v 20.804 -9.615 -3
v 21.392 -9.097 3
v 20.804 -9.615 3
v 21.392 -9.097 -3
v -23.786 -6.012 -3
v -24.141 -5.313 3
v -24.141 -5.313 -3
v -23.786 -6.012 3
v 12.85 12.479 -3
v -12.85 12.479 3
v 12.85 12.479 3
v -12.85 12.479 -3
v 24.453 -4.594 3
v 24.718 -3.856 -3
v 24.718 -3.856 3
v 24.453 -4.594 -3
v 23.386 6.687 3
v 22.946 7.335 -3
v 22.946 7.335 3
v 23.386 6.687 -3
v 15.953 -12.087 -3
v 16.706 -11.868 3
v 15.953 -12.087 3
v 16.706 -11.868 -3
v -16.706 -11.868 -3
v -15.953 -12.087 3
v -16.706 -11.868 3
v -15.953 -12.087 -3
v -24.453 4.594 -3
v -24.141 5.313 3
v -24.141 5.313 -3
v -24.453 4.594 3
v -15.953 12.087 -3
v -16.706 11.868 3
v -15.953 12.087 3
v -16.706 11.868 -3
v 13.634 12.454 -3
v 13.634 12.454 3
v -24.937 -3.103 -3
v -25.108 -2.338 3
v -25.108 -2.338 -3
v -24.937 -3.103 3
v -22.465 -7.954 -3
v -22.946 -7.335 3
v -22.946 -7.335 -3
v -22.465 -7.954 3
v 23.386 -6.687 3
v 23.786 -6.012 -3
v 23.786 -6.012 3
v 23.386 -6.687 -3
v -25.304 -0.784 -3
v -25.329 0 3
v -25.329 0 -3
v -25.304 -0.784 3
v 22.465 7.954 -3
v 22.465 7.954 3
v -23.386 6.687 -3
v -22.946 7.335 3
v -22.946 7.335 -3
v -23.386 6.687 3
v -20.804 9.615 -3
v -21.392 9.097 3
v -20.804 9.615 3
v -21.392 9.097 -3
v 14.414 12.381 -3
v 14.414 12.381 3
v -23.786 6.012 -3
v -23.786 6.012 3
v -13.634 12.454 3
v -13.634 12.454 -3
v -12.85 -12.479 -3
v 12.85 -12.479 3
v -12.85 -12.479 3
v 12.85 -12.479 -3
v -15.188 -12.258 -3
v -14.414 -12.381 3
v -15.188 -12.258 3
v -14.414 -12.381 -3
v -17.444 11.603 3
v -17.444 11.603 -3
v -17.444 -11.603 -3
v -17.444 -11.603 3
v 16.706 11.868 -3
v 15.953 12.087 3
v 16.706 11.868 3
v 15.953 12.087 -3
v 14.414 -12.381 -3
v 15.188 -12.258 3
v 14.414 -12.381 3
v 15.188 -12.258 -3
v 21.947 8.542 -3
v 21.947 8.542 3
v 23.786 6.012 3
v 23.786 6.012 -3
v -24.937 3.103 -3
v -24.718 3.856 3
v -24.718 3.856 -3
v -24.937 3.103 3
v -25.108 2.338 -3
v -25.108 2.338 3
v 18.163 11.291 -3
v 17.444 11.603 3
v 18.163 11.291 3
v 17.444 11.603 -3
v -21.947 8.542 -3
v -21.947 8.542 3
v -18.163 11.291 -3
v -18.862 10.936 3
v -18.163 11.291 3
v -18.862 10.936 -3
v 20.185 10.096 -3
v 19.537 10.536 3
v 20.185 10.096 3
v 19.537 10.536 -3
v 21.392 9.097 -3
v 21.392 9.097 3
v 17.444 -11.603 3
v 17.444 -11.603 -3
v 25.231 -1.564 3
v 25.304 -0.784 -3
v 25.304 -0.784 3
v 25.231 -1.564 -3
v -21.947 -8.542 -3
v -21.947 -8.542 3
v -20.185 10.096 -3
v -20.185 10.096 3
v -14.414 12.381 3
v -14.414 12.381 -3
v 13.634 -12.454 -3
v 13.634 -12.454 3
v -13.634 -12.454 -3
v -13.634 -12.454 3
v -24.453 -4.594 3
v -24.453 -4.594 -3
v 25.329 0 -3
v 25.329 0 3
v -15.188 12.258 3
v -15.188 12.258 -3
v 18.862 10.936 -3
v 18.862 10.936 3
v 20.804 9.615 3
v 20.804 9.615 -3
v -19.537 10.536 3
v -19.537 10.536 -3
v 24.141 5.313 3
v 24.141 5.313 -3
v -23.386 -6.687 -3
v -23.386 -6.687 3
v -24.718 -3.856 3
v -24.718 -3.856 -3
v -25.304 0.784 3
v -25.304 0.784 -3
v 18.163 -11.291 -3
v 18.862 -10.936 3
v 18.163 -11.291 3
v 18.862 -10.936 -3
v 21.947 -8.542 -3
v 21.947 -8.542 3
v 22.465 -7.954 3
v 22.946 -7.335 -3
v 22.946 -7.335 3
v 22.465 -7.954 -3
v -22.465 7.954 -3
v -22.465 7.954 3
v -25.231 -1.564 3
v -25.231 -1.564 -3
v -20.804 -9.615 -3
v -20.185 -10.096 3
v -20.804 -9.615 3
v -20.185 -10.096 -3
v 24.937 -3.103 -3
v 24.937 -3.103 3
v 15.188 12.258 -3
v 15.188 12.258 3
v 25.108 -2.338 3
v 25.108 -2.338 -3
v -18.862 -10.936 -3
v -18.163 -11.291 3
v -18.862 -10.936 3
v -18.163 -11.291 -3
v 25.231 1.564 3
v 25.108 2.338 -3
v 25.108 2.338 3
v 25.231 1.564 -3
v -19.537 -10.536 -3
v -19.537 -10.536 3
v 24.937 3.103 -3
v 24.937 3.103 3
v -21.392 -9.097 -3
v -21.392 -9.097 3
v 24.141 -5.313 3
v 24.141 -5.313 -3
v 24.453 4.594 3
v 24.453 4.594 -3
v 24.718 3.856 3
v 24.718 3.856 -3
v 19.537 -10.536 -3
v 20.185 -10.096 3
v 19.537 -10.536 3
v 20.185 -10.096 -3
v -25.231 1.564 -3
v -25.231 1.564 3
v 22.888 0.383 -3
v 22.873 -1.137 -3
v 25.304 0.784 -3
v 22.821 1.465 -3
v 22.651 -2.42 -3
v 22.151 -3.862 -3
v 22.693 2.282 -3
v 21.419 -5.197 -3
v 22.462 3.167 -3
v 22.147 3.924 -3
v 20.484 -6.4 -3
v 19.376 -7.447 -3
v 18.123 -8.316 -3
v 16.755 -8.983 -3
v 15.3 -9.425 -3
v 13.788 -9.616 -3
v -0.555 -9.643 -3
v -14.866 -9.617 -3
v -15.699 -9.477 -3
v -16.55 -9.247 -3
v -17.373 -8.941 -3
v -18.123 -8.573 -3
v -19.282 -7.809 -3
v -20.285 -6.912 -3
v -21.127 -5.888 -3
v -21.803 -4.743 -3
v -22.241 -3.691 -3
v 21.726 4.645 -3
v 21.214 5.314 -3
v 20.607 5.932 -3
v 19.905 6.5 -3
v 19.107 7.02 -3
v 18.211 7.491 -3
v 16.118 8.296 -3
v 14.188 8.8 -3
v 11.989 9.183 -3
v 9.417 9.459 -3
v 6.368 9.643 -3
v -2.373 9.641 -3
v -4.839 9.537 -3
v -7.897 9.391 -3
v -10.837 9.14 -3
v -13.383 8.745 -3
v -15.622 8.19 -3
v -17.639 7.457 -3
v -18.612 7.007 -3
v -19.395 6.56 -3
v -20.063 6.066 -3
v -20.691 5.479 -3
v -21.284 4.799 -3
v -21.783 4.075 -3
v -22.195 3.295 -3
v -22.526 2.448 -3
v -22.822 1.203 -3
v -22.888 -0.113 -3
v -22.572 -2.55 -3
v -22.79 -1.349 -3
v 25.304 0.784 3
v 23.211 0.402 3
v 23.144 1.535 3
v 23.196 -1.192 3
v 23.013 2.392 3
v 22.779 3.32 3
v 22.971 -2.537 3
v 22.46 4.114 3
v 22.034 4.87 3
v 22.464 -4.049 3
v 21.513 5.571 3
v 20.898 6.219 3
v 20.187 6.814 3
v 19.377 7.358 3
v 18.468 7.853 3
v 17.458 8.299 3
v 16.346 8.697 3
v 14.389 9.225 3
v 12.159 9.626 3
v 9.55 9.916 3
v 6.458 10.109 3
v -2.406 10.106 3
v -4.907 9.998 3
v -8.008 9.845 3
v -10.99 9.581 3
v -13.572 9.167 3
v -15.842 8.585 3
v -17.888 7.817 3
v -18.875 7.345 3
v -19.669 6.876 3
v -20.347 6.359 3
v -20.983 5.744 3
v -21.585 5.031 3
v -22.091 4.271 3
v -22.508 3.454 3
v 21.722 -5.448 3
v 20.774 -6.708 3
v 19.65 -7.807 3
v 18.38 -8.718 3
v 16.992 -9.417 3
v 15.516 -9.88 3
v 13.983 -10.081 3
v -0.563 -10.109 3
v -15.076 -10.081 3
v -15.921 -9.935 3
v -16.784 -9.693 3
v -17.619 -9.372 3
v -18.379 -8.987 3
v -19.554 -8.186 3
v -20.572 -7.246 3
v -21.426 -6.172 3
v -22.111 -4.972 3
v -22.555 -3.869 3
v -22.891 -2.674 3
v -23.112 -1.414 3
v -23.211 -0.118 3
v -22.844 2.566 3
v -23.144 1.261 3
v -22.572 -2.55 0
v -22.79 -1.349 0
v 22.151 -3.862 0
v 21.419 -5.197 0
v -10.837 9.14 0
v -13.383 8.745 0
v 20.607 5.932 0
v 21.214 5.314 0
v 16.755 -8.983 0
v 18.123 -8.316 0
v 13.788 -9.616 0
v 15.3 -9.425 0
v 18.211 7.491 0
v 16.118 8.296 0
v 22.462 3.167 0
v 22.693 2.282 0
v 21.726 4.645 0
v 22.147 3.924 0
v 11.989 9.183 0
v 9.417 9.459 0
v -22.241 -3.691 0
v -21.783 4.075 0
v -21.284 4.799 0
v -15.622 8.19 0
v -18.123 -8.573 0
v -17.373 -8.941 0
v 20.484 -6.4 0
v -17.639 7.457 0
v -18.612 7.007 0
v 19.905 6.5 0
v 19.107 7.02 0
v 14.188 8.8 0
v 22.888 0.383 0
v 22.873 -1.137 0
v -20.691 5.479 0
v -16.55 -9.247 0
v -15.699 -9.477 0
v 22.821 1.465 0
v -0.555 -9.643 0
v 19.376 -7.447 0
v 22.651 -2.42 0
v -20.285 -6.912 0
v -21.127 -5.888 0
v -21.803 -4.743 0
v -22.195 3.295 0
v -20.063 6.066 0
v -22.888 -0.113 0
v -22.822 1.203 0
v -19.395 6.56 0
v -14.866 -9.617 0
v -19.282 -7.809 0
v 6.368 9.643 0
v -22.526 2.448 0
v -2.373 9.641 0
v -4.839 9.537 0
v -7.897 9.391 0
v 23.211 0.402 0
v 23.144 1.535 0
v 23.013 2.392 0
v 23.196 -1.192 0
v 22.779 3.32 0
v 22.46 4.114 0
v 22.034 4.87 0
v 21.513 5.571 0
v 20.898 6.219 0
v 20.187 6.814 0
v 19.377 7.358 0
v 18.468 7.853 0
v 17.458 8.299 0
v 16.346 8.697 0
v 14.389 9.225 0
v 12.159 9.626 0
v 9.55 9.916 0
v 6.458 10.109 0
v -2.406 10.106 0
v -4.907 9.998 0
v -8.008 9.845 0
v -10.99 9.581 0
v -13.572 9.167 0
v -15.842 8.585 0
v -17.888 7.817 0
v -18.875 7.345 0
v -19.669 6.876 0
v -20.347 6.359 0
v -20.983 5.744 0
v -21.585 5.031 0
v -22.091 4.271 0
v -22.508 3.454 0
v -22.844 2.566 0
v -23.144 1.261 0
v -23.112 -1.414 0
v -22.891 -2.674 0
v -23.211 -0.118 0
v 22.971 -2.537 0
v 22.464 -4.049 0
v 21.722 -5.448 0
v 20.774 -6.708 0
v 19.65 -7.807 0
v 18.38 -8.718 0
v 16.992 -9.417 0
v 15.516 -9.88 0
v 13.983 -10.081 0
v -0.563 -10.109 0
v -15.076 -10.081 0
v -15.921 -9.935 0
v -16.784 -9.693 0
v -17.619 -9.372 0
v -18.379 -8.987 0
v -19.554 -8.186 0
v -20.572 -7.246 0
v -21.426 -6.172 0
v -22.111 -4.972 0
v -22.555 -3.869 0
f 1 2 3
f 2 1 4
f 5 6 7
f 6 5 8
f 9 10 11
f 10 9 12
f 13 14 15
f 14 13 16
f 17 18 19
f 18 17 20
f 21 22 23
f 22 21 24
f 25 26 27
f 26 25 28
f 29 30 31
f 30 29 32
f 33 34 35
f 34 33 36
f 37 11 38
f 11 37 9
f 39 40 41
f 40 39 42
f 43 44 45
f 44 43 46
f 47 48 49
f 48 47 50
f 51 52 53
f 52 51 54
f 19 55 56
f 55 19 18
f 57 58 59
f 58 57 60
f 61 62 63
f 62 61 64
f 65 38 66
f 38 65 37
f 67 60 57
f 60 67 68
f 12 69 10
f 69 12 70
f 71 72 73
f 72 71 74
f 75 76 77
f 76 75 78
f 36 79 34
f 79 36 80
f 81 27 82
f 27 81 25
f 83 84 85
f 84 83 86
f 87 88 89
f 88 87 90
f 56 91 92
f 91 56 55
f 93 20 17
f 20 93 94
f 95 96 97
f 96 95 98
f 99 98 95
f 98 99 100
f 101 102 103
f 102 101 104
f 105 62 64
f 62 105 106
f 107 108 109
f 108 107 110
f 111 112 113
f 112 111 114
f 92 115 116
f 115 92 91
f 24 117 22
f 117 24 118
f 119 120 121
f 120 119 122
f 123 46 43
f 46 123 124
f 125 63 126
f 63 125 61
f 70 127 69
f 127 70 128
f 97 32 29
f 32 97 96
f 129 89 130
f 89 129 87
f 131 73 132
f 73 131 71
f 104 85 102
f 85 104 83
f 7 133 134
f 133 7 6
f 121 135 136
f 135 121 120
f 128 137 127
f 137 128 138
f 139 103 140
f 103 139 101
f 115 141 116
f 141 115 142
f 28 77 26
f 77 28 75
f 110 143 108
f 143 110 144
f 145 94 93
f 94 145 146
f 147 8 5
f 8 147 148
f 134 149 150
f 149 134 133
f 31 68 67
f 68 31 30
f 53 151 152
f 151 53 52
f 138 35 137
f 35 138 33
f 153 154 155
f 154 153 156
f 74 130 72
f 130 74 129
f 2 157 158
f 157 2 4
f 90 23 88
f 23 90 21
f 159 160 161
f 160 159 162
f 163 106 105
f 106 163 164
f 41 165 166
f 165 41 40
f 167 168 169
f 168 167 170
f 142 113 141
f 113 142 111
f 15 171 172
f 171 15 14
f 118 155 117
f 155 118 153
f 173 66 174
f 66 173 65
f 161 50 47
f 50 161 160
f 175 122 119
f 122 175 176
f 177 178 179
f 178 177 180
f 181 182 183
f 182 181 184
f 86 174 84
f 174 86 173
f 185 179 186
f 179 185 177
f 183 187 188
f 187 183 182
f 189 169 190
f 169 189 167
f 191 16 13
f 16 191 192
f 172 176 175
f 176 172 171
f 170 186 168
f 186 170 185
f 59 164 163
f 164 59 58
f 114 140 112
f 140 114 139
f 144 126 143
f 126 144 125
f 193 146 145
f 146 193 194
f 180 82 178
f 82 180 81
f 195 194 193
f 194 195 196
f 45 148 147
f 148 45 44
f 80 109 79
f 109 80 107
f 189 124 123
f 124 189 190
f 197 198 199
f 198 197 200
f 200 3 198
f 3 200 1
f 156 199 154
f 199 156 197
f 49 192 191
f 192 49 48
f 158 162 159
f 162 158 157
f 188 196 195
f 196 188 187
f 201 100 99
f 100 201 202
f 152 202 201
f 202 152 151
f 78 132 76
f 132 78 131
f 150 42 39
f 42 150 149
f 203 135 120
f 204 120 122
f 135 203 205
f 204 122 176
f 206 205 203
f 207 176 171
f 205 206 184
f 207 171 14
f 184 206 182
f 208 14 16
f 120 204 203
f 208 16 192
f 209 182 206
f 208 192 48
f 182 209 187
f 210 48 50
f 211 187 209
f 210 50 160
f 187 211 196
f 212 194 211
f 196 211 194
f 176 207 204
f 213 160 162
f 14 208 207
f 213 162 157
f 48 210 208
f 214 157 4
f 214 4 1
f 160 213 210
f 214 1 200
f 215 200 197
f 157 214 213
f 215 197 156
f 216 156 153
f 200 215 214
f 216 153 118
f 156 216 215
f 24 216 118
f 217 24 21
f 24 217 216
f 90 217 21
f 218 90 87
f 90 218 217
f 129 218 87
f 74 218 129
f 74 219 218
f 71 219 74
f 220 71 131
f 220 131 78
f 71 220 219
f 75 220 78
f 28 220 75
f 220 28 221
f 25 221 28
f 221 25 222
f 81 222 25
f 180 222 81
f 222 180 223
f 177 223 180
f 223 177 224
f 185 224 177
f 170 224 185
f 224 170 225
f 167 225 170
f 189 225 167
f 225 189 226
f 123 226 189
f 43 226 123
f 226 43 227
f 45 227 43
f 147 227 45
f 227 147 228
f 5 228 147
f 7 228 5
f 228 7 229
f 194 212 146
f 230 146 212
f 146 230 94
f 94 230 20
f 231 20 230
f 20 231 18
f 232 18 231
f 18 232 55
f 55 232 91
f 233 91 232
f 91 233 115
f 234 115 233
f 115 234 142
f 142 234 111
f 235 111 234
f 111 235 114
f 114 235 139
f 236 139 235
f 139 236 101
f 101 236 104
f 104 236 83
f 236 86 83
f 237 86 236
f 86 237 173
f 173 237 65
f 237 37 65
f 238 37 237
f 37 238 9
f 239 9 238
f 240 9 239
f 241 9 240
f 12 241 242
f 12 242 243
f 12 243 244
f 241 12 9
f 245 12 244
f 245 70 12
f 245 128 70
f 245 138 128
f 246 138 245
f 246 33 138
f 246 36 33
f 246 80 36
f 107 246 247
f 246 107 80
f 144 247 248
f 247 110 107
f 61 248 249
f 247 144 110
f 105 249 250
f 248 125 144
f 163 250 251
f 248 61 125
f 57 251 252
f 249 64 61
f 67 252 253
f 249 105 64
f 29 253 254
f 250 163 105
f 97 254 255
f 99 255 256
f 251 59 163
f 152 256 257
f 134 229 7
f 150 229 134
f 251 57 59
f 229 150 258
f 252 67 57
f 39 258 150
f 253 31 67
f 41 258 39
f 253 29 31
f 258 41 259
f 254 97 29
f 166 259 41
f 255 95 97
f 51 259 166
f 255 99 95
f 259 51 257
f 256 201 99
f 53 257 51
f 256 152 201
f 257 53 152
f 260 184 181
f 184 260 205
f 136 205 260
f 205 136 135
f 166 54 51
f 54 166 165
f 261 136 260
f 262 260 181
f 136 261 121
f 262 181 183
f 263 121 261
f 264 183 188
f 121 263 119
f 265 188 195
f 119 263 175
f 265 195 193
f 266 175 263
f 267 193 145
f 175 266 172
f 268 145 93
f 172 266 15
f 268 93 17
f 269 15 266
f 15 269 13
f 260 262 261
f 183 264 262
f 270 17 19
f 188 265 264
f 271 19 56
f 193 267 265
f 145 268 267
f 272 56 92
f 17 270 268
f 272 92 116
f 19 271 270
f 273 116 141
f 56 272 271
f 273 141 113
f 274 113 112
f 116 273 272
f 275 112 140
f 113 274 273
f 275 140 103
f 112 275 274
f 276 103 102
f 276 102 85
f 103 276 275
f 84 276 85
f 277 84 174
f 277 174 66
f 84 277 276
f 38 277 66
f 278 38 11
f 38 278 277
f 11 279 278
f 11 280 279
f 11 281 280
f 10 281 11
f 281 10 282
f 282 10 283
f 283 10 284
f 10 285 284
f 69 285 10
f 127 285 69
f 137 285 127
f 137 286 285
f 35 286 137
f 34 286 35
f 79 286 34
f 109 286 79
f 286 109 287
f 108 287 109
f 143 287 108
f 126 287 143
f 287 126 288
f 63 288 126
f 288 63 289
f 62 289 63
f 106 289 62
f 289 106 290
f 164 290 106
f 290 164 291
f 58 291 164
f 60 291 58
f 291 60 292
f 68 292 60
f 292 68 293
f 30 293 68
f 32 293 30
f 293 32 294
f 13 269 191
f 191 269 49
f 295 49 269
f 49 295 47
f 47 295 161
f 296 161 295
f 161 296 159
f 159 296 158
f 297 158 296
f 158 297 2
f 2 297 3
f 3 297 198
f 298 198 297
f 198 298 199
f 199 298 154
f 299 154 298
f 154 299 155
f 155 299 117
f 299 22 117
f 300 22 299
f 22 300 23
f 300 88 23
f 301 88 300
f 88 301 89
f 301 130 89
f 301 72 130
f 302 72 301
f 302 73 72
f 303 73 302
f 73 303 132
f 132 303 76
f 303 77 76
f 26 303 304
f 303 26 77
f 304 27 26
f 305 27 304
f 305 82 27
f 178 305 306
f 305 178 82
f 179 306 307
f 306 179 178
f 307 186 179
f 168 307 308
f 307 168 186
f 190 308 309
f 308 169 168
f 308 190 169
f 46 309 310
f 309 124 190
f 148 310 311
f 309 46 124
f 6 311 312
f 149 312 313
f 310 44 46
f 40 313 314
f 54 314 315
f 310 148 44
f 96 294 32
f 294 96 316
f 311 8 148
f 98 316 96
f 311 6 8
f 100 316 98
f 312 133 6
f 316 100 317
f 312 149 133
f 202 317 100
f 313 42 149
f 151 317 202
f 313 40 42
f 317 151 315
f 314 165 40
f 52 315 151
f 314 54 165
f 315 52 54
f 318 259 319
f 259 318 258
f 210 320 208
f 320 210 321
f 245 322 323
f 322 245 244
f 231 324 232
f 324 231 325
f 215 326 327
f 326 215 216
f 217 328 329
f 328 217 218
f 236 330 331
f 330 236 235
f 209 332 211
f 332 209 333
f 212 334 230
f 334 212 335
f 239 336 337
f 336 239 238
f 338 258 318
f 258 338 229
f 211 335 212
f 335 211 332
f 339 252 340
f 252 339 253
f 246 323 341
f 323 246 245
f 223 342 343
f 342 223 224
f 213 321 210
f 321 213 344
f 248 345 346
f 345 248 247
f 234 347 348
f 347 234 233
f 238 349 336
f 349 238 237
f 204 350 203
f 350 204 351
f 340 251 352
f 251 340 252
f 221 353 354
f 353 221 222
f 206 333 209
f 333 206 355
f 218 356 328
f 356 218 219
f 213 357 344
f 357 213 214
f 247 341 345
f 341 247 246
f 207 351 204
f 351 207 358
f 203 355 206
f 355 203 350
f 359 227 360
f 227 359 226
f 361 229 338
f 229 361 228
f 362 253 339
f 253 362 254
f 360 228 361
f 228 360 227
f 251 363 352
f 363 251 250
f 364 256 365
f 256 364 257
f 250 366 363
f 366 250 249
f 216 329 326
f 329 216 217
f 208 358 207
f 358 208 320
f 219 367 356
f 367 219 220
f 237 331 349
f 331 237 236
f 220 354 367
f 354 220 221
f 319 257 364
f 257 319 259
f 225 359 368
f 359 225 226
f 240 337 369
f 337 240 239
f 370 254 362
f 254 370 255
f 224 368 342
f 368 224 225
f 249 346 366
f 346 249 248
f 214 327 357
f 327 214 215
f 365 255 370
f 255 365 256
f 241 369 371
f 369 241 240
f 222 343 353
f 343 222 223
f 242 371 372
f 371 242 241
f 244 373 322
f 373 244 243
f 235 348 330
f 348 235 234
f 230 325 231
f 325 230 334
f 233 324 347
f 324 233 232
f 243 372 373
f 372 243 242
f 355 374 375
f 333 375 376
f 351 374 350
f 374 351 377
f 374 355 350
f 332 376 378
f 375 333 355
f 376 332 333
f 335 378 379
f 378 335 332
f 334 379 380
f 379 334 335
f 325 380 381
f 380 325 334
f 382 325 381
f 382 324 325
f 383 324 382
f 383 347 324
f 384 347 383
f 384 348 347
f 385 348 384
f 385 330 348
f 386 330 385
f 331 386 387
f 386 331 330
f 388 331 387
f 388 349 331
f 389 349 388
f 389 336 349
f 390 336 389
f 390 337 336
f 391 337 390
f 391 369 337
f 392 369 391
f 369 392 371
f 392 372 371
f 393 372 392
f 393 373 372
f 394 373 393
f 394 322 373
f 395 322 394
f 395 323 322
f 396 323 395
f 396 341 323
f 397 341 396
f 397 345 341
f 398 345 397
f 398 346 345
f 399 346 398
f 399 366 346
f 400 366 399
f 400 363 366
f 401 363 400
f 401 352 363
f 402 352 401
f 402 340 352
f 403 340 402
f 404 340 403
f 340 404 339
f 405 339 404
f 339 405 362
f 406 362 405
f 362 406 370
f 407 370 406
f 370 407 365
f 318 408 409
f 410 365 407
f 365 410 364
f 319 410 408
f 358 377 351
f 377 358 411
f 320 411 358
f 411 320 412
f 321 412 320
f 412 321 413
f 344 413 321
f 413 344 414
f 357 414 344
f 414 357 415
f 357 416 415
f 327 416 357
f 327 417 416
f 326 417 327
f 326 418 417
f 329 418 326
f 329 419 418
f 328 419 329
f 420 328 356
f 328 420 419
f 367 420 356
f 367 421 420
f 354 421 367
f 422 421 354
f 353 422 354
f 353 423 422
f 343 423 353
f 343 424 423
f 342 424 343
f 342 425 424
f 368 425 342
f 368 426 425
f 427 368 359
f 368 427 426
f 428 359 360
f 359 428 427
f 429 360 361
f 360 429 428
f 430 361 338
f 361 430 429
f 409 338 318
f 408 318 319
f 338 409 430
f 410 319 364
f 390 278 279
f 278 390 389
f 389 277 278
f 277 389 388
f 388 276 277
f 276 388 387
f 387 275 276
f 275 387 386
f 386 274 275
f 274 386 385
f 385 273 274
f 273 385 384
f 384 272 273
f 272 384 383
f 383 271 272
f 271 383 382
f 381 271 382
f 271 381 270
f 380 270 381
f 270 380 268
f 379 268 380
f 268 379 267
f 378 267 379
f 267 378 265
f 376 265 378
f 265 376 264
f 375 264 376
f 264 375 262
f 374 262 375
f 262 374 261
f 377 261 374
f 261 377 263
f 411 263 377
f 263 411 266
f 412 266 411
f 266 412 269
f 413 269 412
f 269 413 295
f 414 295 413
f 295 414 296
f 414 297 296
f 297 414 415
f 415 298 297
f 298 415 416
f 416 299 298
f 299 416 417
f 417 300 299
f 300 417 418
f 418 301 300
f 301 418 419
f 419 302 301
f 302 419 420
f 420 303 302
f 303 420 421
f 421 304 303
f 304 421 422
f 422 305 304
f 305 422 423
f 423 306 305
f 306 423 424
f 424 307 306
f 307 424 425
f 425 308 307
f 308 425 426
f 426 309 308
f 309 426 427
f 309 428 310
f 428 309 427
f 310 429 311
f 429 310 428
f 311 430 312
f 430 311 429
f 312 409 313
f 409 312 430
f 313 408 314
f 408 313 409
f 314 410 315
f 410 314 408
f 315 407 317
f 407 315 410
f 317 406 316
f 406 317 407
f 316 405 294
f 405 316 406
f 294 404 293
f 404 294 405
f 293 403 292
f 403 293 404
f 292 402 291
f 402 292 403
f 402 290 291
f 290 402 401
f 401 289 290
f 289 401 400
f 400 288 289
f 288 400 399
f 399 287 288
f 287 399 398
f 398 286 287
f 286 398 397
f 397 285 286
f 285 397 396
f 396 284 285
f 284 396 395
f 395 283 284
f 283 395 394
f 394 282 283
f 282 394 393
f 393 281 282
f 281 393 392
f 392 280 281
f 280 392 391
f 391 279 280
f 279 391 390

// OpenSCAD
// Testing of fitting snorchel reduction

// FILTER ADAPTER FOR MASK EASYBREATH - TYPE 2
$fn = 100;

// Tube parameters

R_in_small = 9.65;  // Radius of small circles
R_in_big = 100;    // Radius of big circle

Dist_center = 45 - 2*R_in_small;  // Distance of centers of small circles

Wall_out_thickness =  2;  // Minimal thickness of outer walls (in the thinnest place)

Wall_in_thickness = 1.4;   // Thickness of inner walls
Dist_in_walls = 18.2; // Outer distance of inner walls
Det_in_walls = 15.2;  // Detachment of the inner walls from upper base (mask entrance)

Dist_big_center = sqrt(R_in_big* R_in_big - (Dist_center/2)*(Dist_center/2)); // Distance of the center of the big circle

R_out_small = R_in_small + Wall_out_thickness + R_in_big - Dist_big_center; // Outer radius of small circless

H_tube = 6; // Height of the tube

// Zaslepeni vydechovych otvoru
H_prep = 2; // Tloustka zaslepovacich prepazek

// Frame parameters

T_box = 2*R_out_small; // Thickness of the box
W_box = 145;   // Width of the box
H_box = 102;    // Height of the box

Wall_frame_thick = 6;  // Thickness of the frame wall

// Balcony
Balc_height = 25;



fudge = 0.1;
zsize = 5;
line_fn = 4;
min_line_width = 1.0;
line_width_scale = 1.0;
function min_line_mm(w) = max(min_line_width, w * line_width_scale) * 96/25.4;


//-------------------- Outer
module Outer_coat(Dist_center, R_out_small, H_tube){
  
  hull(){
    translate([-Dist_center/2,0,0])
        cylinder(r = R_out_small, h = H_tube, center = true);
    translate([Dist_center/2,0,0])
        cylinder(r = R_out_small, h = H_tube, center = true);
  }
}



//------------------------- Gumicka
path41003_0_center = [0.000000,0.000000];
path41003_0_points = [[-56.980741,38.102673],[-60.174962,37.548269],[-63.436396,36.635739],[-66.590567,35.422882],[-69.463002,33.967499],[-73.905528,30.939423],[-77.751113,27.385686],[-80.979055,23.328560],[-83.568654,18.790317],[-85.248428,14.622913],[-86.517860,10.104830],[-87.352562,5.343640],[-87.728142,0.446918],[-87.474660,-4.765085],[-86.338765,-9.697751],[-85.070884,-13.054464],[-83.494422,-16.144110],[-81.582215,-19.013085],[-79.307100,-21.707783],[-76.901557,-24.034976],[-74.340061,-25.989346],[-71.337464,-27.761893],[-67.608618,-29.543610],[-59.877223,-32.446672],[-51.297540,-34.646413],[-41.538248,-36.210840],[-30.268023,-37.207956],[-18.547990,-37.786220],[-9.094559,-38.195358],[24.407056,-38.207453],[36.093753,-37.478226],[45.953606,-36.383149],[54.383043,-34.865594],[61.778496,-32.868934],[65.983642,-31.364682],[69.801150,-29.680302],[73.236800,-27.811463],[76.296367,-25.753837],[78.985630,-23.503093],[81.310366,-21.054902],[83.276353,-18.404933],[84.889369,-15.548857],[86.095481,-12.546367],[86.979433,-9.039539],[87.471434,-5.802703],[87.728142,-1.518482],[87.670204,4.505993],[86.820394,9.589592],[84.902987,15.303206],[82.097491,20.589468],[78.515231,25.354948],[74.267534,29.506215],[69.465725,32.949837],[64.221129,35.592384],[58.645071,37.340426],[52.848877,38.100530],[-2.128882,38.207453],[-56.980741,38.102231],[-56.980741,38.102673]];
module poly_path41003(h, w, s, res=line_fn)
{
  scale([25.4/96, -25.4/96, 1]) union()
  {
    translate (path41003_0_center) linear_extrude(height=h, convexity=10, scale=0.01*s)
      translate (-path41003_0_center) polygon(path41003_0_points);
  }
}

module snorkel_model_gumicka(h)
{
  difference()
  {
    union()
    {
      translate ([0,0,0]) poly_path41003(h, min_line_mm(0.02974246), 100.0);
    }
    union()
    {
    }
  }
}


//---------------------- Inner
path4100_0_center = [0.000000,0.000000];
path4100_0_points = [[-56.186721,36.347465],[-59.336433,35.818595],[-62.552419,34.948092],[-65.662636,33.791093],[-68.495042,32.402734],[-72.875662,29.514118],[-76.667659,26.124045],[-79.850620,22.253764],[-82.404134,17.924523],[-84.060502,13.949045],[-85.312246,9.639037],[-86.135317,5.097120],[-86.505664,0.425909],[-86.255706,-4.546063],[-85.135644,-9.251557],[-83.885431,-12.453679],[-82.330937,-15.401034],[-80.445376,-18.137881],[-78.201963,-20.708478],[-75.829941,-22.928493],[-73.304139,-24.792857],[-70.343383,-26.483771],[-66.666502,-28.183434],[-59.042840,-30.952801],[-50.582713,-33.051236],[-40.959414,-34.543613],[-29.846238,-35.494805],[-18.289527,-36.046442],[-8.967826,-36.436725],[24.066948,-36.447845],[35.590795,-35.752199],[45.313252,-34.707555],[53.625226,-33.259890],[60.917621,-31.355182],[68.828482,-28.313401],[72.216257,-26.530630],[75.233190,-24.567766],[77.884980,-22.420677],[80.177322,-20.085234],[82.115915,-17.557307],[83.706454,-14.832765],[84.895754,-11.968554],[85.767384,-8.623223],[86.252534,-5.535465],[86.505664,-1.448546],[86.448673,4.298480],[85.610564,9.147960],[83.719876,14.598438],[80.953474,19.641248],[77.421132,24.187259],[73.232626,28.147344],[68.497730,31.432374],[63.326217,33.953222],[57.827862,35.620758],[52.112440,36.345855],[-2.099215,36.447845],[-56.186721,36.347465],[-56.186721,36.347465]];
module poly_path4100(h, w, s, res=line_fn)
{
  scale([25.4/96, -25.4/96, 1]) union()
  {
    translate (path4100_0_center) linear_extrude(height=h, convexity=10, scale=0.01*s)
      translate (-path4100_0_center) polygon(path4100_0_points);
  }
}

module snorkel_model_inner(h)
{
  difference()
  {
    union()
    {
      translate ([0,0,0]) poly_path4100(h, min_line_mm(0.10902565), 100.0);
    }
    union()
    {
    }
  }
}



difference()
{
    Outer_coat(Dist_center, R_out_small, H_tube);
    translate ([0,0,-H_tube/2-1]) snorkel_model_inner(H_tube + 10);
    translate ([0,0,0]) snorkel_model_gumicka(10);
}
